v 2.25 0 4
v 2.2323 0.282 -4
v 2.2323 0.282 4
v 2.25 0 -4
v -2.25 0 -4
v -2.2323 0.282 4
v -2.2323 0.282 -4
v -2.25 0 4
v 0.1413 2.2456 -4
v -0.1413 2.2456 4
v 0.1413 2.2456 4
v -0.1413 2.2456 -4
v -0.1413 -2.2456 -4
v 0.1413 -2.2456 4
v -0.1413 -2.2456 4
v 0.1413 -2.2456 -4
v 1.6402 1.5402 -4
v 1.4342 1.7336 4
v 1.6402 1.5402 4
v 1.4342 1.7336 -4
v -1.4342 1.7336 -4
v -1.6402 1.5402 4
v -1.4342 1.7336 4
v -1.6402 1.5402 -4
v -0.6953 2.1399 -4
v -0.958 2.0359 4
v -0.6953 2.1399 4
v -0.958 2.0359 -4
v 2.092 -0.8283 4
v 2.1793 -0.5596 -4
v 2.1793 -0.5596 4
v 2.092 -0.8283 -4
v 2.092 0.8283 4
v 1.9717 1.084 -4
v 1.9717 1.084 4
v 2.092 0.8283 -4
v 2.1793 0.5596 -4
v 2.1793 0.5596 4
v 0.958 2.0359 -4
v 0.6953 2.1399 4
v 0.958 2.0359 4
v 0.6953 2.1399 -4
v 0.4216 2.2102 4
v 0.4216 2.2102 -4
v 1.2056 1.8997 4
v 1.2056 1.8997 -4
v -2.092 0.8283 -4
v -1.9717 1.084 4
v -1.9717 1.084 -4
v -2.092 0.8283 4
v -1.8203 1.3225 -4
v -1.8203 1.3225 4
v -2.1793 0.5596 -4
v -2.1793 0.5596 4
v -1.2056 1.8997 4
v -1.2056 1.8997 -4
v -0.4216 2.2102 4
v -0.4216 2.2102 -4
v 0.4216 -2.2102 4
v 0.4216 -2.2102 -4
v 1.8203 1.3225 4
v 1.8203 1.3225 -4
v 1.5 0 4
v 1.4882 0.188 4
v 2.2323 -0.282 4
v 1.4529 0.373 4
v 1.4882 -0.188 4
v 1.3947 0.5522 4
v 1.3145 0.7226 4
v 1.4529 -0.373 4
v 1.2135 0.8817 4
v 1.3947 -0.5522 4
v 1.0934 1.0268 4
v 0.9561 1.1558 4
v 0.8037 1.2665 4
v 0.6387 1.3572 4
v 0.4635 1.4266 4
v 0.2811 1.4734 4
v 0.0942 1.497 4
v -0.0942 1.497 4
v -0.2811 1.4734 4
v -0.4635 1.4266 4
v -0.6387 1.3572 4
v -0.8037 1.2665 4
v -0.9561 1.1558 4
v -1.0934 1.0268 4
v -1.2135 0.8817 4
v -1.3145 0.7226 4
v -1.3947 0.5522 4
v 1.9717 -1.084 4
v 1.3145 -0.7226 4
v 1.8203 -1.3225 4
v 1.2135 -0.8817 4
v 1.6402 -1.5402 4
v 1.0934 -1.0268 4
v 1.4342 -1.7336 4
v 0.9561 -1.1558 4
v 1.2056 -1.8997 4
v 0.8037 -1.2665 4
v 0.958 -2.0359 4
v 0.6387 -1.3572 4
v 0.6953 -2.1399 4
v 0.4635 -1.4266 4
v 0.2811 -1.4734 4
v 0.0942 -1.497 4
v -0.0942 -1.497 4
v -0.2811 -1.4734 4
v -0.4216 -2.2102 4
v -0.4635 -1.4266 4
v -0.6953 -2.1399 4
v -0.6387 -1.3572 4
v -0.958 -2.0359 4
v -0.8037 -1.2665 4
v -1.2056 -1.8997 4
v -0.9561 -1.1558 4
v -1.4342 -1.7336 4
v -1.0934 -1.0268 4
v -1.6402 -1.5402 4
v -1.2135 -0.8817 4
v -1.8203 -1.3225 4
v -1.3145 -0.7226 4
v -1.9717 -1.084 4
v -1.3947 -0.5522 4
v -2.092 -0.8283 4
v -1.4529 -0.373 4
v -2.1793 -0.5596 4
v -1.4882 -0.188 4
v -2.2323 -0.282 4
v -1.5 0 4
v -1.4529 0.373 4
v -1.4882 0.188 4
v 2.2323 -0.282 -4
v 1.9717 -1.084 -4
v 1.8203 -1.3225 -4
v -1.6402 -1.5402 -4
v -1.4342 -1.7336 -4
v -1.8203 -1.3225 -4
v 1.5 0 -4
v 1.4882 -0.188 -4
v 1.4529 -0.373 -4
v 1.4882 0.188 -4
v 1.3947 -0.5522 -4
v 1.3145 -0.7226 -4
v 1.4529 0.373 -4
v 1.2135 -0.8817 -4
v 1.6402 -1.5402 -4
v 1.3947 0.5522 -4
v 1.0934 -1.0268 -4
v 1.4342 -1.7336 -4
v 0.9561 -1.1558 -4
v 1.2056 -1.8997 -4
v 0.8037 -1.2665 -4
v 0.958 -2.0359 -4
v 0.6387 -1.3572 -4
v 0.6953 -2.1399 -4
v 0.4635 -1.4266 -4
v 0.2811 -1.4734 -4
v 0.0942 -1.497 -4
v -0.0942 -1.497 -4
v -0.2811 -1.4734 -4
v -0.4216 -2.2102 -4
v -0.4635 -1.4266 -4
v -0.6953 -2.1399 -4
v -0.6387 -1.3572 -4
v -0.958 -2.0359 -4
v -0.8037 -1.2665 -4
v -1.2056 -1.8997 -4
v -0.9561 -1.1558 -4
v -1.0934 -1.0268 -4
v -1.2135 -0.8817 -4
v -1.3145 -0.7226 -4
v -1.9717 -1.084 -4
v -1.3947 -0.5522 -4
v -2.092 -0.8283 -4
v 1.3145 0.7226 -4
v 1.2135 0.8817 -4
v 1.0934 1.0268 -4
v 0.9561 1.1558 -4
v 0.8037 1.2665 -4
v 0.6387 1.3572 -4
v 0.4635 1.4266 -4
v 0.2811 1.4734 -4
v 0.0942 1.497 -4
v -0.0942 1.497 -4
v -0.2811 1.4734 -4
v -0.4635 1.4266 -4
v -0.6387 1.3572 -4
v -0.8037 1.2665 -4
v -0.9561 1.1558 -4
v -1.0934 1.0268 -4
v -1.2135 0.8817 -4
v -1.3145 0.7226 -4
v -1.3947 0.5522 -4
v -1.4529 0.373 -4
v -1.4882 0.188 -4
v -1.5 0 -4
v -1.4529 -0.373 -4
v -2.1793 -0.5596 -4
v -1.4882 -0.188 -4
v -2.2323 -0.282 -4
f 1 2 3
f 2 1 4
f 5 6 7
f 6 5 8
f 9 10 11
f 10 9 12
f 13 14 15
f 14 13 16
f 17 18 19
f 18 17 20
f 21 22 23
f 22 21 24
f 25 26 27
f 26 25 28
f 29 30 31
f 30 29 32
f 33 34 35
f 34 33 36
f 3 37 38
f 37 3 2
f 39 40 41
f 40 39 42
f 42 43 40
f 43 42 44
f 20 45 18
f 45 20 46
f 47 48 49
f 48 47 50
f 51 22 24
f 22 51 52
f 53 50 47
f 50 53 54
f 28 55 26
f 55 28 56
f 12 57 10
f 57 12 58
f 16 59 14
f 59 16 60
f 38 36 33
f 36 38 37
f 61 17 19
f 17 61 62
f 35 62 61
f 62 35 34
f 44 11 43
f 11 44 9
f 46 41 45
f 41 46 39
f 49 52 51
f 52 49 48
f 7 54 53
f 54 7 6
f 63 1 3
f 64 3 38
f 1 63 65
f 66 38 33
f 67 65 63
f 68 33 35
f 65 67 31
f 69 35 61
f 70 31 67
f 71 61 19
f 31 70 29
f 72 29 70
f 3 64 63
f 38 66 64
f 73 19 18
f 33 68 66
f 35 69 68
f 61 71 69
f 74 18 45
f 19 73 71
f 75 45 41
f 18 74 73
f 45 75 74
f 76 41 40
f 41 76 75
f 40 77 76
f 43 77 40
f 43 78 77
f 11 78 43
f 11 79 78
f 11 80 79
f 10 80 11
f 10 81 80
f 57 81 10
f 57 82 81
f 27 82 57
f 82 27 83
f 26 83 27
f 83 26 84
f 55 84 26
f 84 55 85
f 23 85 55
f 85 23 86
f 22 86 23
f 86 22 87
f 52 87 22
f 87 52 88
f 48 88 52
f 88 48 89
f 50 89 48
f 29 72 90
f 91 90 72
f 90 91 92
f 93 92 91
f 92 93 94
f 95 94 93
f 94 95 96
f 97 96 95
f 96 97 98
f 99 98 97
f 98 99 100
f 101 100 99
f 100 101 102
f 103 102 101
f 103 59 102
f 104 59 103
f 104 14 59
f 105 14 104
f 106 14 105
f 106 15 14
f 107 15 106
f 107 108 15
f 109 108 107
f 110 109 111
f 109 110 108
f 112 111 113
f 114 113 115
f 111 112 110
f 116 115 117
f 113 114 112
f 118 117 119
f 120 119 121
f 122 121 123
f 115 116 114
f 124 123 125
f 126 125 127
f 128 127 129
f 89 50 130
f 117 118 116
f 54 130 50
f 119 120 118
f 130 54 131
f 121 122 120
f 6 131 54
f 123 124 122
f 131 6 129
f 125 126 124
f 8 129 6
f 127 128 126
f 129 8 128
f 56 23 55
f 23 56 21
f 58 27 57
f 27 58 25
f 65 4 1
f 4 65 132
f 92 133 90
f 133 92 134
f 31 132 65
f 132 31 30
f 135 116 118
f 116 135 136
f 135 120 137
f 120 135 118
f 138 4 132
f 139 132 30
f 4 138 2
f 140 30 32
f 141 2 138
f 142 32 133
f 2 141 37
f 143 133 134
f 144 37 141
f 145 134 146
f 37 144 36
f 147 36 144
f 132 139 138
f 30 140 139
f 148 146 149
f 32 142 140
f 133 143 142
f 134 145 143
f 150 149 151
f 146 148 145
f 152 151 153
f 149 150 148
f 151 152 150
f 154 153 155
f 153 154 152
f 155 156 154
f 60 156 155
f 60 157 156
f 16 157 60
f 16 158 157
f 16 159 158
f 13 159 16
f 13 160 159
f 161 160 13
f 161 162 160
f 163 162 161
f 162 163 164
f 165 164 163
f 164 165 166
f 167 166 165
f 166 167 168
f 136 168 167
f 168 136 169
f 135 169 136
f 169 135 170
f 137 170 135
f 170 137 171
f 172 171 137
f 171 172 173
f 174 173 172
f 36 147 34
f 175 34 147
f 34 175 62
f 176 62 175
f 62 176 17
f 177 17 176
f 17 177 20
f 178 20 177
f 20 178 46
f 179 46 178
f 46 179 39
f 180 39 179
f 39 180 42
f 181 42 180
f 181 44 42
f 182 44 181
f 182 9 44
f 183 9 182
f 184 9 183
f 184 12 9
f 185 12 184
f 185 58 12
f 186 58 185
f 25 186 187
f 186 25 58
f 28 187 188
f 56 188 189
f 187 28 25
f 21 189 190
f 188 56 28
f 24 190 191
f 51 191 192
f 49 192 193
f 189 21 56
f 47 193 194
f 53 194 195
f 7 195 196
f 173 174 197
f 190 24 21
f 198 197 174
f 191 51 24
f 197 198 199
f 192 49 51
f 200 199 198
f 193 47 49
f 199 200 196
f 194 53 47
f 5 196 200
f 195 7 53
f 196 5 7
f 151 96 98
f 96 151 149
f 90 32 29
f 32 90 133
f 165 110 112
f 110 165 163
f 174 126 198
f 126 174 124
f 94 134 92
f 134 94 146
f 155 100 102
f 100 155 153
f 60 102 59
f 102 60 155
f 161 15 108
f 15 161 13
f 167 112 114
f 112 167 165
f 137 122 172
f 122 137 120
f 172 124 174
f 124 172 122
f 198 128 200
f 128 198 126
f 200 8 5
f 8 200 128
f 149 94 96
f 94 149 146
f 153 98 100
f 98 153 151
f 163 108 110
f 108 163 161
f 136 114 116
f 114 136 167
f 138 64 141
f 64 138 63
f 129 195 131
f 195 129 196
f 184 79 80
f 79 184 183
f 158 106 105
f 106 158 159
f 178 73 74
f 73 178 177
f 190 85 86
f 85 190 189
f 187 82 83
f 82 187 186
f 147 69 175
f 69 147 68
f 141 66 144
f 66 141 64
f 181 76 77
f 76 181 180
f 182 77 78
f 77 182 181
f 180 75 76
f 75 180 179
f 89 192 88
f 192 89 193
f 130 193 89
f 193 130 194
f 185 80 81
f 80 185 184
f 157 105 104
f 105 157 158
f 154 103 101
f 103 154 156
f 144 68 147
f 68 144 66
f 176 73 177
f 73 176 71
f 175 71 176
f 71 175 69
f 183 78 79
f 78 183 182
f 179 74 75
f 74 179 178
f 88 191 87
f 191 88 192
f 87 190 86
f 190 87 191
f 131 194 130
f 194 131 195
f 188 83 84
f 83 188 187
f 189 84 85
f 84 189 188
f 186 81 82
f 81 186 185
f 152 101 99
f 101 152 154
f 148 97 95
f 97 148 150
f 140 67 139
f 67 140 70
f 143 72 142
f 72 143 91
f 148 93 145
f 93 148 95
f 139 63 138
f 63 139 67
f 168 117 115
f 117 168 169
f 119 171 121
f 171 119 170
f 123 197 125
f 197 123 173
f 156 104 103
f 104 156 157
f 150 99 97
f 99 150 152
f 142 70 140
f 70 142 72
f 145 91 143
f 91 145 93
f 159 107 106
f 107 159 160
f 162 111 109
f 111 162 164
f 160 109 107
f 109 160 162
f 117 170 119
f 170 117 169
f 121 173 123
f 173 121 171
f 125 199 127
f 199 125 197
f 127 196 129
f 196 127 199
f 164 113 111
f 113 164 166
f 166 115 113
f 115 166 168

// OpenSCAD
$fn = 50;


difference() {
	union() {
		translate(v = [0, 0, -4.0000000000]) {
			cylinder(h = 8, r = 2.2500000000);
		}
	}
	union() {
		translate(v = [0, 0, -100.0000000000]) {
			cylinder(h = 200, r = 1.5000000000);
		}
	}
}
